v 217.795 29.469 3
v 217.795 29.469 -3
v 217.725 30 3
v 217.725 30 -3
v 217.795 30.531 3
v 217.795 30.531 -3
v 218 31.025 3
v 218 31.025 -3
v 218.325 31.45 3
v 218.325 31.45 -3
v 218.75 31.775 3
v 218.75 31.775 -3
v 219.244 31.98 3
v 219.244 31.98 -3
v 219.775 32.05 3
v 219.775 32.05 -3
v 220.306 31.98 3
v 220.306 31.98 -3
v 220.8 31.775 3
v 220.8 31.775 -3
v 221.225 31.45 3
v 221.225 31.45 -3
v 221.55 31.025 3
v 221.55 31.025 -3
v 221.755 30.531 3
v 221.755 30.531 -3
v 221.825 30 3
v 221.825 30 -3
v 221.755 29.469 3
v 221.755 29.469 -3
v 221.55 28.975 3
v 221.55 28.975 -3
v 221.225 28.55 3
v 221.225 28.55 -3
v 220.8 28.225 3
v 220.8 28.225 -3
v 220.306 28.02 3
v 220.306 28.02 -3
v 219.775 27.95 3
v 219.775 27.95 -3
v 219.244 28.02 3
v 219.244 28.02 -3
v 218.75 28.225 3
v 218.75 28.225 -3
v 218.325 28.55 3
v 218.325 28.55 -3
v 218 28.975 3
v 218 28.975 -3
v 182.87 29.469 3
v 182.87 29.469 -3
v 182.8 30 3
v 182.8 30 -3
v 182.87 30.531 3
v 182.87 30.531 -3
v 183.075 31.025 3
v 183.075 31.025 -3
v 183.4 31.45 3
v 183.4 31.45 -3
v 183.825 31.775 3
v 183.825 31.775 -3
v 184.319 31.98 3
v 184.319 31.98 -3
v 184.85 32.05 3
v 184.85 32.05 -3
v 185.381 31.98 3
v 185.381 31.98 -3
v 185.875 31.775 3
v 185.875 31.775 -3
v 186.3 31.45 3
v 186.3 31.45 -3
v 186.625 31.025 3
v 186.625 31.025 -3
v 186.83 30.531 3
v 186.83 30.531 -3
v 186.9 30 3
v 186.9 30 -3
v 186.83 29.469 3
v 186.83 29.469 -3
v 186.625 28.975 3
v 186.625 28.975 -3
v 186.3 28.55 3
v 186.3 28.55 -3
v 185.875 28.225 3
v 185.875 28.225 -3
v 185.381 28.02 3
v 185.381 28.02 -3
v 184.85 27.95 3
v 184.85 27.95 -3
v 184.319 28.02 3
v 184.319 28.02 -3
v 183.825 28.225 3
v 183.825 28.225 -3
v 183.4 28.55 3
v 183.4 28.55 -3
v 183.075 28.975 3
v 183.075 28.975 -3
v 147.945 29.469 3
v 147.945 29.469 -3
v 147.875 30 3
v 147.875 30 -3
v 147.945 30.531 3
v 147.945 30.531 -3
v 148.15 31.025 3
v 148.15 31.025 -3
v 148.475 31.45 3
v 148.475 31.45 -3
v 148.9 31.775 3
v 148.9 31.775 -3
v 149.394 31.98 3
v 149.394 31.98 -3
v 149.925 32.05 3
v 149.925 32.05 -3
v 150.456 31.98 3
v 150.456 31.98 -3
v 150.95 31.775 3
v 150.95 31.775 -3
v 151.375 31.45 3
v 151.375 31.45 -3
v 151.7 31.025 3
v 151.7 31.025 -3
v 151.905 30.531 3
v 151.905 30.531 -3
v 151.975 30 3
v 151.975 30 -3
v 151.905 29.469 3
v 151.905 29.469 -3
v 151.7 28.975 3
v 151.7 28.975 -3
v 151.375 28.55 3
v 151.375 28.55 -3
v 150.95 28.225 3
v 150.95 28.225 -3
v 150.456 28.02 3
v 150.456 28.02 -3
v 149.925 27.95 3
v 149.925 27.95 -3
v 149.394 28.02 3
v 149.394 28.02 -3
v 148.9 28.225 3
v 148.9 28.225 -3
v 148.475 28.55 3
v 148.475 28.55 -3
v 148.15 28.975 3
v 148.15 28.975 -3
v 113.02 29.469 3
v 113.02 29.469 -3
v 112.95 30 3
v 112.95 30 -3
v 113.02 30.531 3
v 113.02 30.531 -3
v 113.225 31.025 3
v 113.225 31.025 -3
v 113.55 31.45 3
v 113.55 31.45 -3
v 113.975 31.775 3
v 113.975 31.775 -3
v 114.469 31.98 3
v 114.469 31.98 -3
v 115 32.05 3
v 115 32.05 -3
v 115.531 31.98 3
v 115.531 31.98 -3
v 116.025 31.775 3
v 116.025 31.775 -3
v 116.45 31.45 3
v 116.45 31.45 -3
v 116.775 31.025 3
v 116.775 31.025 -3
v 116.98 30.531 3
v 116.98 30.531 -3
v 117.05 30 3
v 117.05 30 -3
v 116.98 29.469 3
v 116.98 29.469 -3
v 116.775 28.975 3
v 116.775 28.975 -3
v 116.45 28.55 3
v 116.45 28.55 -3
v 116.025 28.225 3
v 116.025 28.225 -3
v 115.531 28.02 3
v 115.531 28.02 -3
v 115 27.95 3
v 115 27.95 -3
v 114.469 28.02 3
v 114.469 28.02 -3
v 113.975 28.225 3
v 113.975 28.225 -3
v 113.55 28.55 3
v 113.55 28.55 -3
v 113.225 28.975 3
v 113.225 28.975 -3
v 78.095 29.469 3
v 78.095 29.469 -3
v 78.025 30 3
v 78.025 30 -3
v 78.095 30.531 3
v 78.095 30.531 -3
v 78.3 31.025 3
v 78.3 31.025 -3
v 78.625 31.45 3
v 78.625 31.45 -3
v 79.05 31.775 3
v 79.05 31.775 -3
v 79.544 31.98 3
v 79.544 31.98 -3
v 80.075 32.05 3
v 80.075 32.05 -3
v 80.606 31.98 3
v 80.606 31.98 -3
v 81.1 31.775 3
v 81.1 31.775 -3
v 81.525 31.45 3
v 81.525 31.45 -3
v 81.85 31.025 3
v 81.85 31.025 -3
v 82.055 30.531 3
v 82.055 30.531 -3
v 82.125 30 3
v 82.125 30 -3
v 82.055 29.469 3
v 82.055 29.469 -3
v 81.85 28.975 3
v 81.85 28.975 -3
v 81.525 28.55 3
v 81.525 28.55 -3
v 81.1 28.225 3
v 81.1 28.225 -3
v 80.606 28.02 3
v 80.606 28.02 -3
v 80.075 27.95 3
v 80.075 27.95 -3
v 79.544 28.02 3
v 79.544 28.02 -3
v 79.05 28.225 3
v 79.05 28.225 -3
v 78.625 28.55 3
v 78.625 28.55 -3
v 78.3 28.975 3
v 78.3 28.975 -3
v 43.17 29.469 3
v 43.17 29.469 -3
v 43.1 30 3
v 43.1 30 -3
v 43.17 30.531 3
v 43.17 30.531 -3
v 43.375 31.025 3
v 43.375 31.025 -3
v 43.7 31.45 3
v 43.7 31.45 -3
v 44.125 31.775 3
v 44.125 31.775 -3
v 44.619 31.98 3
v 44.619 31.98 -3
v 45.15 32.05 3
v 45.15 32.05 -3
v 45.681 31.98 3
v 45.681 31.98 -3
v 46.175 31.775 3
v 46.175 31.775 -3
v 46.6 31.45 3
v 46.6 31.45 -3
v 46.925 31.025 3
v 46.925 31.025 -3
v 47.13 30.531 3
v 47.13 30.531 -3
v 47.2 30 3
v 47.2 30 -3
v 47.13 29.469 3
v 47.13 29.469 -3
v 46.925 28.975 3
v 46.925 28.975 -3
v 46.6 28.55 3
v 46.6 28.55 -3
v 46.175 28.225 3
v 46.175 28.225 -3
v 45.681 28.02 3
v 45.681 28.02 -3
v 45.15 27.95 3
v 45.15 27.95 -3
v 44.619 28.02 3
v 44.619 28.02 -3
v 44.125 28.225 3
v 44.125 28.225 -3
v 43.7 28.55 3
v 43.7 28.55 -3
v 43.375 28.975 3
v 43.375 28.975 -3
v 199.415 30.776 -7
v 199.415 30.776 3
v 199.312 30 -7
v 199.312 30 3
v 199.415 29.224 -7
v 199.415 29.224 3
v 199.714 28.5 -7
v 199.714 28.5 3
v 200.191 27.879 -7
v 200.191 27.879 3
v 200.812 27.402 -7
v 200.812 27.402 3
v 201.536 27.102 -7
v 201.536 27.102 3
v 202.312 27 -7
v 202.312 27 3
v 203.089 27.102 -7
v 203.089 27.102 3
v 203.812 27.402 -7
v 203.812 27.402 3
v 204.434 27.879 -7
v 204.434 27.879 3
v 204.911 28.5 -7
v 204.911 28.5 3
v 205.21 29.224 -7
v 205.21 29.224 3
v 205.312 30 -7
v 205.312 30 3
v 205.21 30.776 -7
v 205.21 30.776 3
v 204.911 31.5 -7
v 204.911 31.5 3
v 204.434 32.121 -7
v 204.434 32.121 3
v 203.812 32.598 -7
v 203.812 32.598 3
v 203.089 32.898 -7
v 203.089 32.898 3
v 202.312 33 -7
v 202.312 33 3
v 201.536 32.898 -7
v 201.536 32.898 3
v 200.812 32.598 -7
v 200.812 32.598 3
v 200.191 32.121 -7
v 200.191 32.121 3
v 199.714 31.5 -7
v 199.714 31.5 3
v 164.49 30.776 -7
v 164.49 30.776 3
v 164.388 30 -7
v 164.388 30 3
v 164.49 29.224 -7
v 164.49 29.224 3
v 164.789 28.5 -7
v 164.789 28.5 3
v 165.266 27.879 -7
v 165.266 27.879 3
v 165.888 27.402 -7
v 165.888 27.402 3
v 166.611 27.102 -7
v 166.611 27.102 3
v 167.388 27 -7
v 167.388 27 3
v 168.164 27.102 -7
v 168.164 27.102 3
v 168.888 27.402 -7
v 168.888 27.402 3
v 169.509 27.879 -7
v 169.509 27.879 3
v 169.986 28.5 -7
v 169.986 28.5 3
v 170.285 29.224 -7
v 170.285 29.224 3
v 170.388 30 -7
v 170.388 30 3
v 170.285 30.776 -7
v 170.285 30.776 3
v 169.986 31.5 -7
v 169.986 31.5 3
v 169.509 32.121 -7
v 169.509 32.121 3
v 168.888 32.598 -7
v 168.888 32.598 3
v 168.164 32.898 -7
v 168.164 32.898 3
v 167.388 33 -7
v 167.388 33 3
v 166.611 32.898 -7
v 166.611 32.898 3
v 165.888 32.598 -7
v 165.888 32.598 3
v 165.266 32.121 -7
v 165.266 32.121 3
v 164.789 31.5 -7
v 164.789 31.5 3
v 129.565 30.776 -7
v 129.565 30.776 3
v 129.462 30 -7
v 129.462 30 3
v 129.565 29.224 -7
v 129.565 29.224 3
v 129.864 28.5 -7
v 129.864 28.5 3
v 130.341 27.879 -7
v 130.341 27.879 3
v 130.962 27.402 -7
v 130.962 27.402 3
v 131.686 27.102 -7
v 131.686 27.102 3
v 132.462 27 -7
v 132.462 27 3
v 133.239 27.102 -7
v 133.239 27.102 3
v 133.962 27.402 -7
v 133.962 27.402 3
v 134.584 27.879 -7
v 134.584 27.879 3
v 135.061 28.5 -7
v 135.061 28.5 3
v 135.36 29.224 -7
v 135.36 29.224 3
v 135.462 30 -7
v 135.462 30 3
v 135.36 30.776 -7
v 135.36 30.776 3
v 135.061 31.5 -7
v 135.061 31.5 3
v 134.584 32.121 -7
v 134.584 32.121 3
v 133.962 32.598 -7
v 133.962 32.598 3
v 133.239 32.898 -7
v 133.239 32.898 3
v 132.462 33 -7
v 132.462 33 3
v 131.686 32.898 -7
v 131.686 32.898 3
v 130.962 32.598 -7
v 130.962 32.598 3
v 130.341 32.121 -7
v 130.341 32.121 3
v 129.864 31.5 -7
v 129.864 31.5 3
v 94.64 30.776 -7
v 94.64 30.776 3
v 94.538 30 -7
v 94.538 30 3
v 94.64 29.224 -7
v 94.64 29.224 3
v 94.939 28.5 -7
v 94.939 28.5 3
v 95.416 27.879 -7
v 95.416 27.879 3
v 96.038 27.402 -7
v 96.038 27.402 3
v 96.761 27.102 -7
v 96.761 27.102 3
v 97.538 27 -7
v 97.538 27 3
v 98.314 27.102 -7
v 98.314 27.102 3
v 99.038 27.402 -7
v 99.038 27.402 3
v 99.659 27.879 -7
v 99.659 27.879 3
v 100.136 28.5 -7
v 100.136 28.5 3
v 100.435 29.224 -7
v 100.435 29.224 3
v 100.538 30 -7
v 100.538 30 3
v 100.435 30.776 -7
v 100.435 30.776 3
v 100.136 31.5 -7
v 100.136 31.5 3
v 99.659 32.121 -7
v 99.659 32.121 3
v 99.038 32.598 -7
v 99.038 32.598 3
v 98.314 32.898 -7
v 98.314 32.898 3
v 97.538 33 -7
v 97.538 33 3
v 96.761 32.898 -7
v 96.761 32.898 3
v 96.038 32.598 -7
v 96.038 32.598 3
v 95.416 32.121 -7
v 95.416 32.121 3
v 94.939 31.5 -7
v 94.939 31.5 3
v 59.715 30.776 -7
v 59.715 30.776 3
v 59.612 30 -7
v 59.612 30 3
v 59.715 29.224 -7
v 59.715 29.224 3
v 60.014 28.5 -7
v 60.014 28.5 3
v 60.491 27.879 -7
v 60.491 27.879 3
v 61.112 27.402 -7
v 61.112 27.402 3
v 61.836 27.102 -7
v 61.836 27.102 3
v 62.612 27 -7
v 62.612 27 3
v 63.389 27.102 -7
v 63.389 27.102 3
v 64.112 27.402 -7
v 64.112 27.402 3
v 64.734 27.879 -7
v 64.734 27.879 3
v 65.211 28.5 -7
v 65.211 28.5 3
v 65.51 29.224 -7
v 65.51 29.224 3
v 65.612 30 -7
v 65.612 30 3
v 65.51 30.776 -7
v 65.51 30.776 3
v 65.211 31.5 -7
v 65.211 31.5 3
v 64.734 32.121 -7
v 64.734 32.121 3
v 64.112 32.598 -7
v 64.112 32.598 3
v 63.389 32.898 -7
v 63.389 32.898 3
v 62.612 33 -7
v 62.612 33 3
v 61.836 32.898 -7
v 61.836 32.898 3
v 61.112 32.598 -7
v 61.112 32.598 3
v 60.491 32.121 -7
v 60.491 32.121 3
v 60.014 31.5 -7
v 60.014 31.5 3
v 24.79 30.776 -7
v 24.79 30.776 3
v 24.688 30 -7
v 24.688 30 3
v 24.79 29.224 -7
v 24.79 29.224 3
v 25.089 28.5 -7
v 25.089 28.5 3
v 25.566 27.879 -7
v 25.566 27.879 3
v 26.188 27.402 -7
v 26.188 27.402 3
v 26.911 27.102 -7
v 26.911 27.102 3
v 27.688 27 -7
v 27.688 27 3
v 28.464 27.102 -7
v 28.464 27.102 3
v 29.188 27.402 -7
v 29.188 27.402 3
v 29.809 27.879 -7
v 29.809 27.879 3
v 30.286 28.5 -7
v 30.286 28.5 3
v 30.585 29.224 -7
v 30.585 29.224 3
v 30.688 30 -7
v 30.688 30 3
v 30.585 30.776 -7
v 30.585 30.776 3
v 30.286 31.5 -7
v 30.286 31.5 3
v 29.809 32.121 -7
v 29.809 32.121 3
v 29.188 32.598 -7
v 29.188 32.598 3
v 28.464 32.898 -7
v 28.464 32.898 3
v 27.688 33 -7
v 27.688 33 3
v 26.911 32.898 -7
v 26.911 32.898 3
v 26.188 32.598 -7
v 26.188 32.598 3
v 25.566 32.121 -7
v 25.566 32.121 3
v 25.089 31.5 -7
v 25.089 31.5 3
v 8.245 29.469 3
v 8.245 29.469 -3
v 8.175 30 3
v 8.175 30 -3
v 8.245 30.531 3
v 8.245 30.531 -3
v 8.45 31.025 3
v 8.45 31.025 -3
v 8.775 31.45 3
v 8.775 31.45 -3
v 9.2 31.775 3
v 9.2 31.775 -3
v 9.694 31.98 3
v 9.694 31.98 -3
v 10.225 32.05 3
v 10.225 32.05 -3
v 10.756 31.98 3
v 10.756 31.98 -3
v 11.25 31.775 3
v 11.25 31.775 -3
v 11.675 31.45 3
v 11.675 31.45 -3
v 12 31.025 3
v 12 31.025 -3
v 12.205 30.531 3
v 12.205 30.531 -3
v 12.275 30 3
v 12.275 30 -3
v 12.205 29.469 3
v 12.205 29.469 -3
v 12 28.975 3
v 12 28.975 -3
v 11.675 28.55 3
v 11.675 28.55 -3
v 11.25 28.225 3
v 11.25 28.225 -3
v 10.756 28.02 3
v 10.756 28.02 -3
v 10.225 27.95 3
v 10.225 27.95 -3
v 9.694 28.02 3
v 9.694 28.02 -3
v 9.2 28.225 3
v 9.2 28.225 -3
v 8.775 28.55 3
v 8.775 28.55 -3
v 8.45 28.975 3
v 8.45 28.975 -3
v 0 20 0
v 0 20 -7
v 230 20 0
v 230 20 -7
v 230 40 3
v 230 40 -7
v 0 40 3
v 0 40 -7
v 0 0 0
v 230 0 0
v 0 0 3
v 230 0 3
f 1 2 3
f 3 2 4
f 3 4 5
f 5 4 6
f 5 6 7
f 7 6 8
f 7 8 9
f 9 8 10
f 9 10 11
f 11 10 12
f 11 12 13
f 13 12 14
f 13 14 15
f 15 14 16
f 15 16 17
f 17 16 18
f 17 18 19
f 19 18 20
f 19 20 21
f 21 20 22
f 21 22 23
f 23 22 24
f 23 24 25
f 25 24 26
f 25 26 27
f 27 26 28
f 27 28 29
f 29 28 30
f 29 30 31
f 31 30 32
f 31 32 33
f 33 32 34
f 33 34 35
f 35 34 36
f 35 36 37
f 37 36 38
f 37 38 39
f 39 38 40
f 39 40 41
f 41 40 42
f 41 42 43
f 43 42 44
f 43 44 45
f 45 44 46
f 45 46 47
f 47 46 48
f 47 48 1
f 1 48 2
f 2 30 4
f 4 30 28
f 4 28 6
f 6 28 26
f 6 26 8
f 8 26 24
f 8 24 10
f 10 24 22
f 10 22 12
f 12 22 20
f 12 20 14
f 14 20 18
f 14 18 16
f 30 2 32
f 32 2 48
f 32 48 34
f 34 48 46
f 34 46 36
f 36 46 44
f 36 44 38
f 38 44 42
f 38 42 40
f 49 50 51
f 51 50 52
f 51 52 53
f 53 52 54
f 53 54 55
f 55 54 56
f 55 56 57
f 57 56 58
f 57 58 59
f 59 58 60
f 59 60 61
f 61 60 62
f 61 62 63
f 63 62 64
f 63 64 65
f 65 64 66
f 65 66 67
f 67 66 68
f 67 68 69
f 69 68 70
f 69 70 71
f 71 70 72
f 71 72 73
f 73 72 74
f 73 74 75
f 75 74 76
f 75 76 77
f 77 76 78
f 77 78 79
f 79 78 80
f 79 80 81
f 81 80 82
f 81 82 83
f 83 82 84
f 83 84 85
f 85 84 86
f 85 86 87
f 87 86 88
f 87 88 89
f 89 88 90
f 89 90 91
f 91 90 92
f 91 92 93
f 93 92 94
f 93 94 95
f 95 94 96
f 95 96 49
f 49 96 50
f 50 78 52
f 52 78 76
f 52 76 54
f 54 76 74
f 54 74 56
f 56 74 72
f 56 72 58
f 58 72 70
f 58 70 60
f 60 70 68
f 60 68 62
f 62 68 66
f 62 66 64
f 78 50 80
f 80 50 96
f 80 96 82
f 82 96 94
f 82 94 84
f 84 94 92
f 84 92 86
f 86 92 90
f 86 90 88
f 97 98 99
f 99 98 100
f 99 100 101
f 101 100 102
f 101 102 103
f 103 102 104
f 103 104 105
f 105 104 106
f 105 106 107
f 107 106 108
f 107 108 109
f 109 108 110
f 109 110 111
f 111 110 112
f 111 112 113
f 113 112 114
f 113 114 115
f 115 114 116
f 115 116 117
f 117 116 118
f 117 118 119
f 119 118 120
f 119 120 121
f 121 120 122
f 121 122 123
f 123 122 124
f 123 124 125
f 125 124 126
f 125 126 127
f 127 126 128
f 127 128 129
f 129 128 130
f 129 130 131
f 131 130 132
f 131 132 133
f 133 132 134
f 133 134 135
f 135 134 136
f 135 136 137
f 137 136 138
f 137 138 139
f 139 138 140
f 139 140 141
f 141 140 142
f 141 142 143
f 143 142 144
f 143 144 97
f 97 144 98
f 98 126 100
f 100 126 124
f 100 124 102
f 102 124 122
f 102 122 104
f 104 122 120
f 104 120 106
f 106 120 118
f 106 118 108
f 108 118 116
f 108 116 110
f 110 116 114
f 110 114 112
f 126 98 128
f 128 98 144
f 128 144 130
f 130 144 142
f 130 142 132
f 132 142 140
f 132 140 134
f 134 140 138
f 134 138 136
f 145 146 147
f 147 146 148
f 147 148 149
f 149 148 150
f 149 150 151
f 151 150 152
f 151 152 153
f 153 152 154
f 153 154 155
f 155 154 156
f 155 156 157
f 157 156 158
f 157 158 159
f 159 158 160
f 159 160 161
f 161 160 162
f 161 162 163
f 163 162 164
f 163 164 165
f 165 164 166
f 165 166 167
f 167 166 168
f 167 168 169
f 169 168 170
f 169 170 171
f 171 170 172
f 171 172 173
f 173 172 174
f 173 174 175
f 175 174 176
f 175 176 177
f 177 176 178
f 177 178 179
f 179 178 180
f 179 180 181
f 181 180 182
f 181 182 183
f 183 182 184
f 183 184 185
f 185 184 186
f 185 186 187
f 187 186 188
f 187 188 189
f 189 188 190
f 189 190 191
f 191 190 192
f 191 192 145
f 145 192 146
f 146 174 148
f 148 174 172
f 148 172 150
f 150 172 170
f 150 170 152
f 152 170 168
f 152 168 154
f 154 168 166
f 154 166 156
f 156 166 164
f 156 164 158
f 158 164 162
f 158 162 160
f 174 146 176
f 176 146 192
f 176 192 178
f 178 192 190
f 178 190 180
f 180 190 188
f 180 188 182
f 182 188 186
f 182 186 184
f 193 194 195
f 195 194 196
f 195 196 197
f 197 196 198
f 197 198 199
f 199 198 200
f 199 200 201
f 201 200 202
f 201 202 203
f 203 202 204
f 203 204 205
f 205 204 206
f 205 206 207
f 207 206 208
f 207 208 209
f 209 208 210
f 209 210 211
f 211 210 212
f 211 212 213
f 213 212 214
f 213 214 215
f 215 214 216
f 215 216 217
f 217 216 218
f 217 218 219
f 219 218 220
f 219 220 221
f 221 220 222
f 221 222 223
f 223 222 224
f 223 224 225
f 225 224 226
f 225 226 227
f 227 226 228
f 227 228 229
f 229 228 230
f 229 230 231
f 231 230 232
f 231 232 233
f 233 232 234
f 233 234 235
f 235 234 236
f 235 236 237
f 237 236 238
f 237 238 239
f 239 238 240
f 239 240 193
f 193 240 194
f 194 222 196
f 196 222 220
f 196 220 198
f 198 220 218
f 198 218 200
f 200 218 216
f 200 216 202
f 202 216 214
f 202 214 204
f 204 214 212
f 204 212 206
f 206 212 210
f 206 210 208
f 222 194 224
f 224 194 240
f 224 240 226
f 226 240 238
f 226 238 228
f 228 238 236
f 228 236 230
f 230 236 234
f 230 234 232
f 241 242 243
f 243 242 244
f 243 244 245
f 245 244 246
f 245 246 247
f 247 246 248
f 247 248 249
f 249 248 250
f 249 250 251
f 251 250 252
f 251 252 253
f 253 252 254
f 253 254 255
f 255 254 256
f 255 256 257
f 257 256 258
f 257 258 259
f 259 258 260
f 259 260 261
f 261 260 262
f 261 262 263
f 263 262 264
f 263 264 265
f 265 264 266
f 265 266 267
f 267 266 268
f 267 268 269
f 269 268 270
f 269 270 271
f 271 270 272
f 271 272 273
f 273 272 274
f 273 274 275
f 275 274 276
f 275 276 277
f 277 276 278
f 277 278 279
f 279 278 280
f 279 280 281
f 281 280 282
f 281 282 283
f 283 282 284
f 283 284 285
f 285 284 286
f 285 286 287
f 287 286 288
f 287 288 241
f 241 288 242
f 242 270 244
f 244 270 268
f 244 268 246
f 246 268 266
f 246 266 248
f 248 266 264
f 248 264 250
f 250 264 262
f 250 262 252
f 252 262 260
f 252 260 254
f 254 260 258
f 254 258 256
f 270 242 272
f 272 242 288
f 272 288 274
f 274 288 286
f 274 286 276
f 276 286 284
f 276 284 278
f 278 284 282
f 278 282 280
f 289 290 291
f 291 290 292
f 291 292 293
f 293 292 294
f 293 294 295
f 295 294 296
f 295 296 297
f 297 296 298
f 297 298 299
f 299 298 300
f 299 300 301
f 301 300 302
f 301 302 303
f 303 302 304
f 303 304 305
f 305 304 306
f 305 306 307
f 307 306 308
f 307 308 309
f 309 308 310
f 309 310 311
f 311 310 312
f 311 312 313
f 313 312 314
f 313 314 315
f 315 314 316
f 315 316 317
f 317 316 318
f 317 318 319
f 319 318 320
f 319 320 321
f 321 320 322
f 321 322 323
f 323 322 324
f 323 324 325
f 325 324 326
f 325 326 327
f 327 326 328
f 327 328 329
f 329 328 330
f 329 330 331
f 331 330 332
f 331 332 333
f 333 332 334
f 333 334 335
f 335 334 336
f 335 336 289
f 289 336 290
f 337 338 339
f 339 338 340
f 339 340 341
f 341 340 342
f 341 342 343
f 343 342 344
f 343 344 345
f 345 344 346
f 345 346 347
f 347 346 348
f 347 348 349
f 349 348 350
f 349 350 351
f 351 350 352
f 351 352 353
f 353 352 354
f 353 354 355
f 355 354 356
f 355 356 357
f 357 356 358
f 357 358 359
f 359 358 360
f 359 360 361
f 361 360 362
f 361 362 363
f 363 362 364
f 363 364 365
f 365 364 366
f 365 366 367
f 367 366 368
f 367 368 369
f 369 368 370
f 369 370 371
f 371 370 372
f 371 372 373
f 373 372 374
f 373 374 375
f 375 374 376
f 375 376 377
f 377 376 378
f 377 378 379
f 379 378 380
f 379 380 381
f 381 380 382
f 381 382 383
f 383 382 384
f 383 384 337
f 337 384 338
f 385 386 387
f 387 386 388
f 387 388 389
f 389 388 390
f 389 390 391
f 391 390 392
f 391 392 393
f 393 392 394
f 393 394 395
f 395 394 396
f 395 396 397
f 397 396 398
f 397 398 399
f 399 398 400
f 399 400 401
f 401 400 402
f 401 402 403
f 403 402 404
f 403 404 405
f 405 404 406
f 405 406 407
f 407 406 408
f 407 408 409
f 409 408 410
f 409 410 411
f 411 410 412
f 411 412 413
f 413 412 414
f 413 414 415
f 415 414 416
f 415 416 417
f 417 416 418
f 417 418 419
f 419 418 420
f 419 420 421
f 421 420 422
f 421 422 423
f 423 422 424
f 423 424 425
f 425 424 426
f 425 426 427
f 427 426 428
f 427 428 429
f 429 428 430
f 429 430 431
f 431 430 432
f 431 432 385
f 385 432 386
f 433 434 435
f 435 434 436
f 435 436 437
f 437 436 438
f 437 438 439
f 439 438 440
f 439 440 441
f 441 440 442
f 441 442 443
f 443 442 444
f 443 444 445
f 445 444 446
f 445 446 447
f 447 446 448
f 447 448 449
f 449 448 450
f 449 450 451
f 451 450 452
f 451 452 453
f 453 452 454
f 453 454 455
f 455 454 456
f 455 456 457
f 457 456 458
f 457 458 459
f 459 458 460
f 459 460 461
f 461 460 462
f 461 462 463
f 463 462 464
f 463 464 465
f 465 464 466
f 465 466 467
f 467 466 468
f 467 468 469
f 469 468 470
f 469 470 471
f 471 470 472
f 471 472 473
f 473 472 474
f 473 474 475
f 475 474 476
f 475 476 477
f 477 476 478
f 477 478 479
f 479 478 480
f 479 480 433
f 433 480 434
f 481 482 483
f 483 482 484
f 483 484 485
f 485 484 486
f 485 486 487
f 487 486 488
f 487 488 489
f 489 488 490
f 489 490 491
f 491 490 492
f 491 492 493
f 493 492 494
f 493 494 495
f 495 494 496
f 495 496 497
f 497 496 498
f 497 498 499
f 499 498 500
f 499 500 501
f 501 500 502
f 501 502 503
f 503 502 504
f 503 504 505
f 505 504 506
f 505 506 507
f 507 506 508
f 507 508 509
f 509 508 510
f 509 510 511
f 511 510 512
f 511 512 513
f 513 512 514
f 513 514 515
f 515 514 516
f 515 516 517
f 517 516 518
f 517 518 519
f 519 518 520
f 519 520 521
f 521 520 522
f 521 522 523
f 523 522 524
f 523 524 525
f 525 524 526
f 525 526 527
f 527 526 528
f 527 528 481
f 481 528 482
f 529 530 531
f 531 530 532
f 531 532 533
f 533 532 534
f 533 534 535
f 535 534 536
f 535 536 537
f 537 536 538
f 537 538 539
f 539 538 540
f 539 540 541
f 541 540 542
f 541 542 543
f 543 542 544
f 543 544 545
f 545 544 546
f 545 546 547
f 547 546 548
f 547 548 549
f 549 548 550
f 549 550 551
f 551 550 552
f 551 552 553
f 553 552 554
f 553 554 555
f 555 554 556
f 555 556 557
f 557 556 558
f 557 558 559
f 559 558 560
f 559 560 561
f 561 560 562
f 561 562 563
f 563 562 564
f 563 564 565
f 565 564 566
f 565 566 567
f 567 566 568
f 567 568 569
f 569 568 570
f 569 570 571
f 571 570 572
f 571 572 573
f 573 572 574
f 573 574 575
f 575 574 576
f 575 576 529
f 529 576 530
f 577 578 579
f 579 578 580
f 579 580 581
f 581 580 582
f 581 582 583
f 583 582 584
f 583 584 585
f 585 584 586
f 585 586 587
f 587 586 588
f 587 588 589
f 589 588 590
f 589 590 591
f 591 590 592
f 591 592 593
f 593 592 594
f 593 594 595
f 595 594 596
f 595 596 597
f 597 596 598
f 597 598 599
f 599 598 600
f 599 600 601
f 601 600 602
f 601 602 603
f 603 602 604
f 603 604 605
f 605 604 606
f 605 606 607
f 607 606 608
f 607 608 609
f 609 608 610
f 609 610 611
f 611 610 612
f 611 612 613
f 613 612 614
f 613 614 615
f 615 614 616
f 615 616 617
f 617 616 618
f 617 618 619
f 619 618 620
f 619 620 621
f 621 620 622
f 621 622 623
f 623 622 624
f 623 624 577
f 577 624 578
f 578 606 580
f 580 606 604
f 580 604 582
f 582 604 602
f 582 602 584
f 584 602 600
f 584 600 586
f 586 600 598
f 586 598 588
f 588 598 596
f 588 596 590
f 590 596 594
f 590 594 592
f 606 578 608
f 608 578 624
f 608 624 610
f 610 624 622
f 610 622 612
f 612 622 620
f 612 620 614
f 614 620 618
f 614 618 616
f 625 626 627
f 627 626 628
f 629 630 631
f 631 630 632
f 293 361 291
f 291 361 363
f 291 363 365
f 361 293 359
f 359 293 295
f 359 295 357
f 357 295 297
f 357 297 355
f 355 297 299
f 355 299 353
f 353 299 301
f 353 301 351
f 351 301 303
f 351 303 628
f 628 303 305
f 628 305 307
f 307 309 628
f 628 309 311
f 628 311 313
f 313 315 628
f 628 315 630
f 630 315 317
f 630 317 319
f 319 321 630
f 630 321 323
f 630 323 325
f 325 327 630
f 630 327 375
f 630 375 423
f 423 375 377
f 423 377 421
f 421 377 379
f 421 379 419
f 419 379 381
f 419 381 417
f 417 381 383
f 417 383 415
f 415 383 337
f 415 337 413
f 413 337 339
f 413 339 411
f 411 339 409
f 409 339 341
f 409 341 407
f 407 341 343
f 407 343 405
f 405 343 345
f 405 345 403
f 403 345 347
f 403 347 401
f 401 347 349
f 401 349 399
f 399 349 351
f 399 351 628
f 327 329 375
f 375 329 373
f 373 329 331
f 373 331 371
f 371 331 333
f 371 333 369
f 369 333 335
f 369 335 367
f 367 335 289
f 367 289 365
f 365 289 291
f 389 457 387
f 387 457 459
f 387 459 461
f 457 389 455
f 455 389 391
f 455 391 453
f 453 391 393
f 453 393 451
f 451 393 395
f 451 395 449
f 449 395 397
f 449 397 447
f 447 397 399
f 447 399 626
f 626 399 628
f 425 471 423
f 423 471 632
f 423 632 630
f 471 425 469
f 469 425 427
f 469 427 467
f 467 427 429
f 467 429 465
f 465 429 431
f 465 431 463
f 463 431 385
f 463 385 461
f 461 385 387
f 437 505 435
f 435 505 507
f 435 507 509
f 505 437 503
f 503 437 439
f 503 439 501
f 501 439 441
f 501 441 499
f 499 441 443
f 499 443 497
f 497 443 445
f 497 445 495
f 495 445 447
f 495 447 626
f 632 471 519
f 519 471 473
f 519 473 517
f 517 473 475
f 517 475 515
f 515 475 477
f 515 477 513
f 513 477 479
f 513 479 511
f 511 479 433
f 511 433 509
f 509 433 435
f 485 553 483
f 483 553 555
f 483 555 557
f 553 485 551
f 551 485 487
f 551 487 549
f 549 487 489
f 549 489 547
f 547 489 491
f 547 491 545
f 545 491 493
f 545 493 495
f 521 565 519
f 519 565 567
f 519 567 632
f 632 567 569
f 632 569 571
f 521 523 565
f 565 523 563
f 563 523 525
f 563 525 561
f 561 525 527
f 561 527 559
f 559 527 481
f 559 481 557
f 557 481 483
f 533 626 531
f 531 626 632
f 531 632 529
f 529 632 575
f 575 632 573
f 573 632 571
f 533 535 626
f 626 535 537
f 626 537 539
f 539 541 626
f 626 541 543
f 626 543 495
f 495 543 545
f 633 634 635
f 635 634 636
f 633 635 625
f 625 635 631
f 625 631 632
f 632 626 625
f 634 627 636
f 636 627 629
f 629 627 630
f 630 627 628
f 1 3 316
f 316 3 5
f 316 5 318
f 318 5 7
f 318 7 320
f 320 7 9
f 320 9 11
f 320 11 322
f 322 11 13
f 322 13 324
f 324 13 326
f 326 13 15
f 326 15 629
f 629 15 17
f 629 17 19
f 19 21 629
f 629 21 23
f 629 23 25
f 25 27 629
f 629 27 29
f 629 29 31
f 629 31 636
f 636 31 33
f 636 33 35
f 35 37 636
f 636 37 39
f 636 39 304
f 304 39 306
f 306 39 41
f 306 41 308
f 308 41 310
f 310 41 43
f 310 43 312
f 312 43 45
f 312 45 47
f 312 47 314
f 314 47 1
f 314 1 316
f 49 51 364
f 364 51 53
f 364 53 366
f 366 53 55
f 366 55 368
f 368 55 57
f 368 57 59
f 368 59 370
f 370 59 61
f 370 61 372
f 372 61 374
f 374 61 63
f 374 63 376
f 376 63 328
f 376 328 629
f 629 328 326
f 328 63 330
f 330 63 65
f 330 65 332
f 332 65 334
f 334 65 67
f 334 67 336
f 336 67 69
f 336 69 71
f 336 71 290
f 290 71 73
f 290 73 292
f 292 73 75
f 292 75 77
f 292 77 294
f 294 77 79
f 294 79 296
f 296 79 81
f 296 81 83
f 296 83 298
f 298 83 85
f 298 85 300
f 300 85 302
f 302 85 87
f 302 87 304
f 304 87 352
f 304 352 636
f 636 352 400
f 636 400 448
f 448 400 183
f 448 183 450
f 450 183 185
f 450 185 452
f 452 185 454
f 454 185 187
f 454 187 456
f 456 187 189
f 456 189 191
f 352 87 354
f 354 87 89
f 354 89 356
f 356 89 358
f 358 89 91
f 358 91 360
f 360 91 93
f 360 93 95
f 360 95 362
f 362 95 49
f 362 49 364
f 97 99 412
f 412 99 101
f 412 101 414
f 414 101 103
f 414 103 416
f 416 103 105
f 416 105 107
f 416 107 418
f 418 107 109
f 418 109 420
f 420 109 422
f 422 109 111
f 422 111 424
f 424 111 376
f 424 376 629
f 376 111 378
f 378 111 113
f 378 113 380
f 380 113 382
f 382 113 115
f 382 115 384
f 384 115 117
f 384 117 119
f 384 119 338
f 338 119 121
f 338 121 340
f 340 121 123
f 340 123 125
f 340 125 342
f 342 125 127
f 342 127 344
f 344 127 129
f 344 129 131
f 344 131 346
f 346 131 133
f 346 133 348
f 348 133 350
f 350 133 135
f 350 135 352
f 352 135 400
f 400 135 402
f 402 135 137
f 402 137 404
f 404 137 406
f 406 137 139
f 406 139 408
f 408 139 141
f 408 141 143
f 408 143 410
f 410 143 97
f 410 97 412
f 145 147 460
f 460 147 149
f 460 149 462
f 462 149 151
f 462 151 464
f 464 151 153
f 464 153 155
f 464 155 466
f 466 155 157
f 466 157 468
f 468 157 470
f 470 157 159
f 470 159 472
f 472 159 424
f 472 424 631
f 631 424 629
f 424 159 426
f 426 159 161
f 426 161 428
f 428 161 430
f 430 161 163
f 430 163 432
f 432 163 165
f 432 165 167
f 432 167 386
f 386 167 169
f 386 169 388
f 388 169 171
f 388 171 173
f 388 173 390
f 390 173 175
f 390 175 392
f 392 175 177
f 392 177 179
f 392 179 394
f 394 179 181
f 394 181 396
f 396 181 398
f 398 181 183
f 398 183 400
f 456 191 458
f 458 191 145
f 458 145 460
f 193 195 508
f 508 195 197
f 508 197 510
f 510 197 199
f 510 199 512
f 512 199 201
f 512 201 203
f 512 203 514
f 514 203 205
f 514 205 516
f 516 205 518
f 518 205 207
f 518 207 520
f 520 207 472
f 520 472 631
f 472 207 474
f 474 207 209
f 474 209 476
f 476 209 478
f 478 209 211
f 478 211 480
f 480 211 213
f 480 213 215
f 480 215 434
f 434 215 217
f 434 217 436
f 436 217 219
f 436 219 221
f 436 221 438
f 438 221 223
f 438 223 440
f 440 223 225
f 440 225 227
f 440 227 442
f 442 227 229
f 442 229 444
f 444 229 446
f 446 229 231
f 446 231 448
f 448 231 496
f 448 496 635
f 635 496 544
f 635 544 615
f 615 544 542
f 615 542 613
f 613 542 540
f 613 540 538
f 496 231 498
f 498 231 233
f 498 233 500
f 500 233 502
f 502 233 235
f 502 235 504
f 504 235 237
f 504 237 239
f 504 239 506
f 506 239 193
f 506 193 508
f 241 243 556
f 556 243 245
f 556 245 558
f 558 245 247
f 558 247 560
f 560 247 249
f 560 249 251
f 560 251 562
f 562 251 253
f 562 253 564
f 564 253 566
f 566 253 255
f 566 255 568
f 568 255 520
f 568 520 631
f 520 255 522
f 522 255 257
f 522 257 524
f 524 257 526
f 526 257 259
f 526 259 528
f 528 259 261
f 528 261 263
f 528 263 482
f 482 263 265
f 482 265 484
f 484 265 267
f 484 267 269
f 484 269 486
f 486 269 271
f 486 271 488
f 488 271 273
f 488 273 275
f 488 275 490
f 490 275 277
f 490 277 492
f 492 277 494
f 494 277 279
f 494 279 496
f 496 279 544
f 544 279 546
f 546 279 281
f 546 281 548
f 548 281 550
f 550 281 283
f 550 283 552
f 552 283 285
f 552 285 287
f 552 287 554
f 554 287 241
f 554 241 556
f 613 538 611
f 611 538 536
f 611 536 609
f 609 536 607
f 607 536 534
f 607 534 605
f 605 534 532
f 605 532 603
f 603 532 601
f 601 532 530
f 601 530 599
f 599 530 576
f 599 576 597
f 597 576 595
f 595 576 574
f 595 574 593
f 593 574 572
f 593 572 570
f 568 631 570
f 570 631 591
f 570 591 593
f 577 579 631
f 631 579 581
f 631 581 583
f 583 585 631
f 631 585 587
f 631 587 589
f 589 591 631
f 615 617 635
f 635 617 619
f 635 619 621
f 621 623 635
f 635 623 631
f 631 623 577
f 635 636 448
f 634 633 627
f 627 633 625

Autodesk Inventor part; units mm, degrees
ref_plane "YZ Plane" through (0, 0, 0) normal (1, 0, 0) x (0, 1, 0)
ref_plane "XZ Plane" through (0, 0, 0) normal (0, 1, 0) x (-1, 0, 0)
ref_plane "XY Plane" through (0, 0, 0) normal (0, 0, 1) x (1, 0, 0)
sketch "Sketch1" plane through (0, 0, 0) normal (0, 0, 1) x (1, 0, 0)
  line L0 (0, 0) -> (230, 0)
  line L1 (230, 0) -> (230, 20)
  line L2 (230, 20) -> (0, 20)
  line L3 (0, 20) -> (0, 0)
  dimension "d0" = 230
  dimension "d1" = 20
extrude "Extrusion1" add sketch "Sketch1" along normal blind 3
sketch "Sketch2" plane through (0, 0, 3) normal (0, 0, -1) x (-1, 0, 0)
  line L0 (0, 0) -> (-230, 0) projected
  line L1 (-12.5251, -24.7625) -> (-37.9251, -24.7625) projected
  line L2 (-230, 20) -> (0, 20) projected
  point P0 (-10.225, 30)
  dimension "d62" = 10
  dimension "d73" = 10.225
sketch "Sketch5" plane through (0, 0, 0) normal (-1, 0, 0) x (0, 0, 1)
  line L0 (0, 20) -> (3, 20) projected
  line L1 (3, 20) -> (-7, 20)
  line L2 (-7, 20) -> (-7, 40)
  line L3 (-7, 40) -> (3, 40)
  line L4 (3, 40) -> (3, 20)
  point P0 (0, 0)
  point P1 (3, 30)
  point P2 (1.5, 20)
  point P3 (0, 20)
  dimension "d31" = 10
  dimension "d32" = 20
extrude "Extrusion3" add sketch "Sketch5" against normal up to surface (230 mm away)
hole "Hole3" at (10.225, 30, 3) direction (0, 0, -1) diameter 4.1 depth 6
sketch "Sketch6" plane through (0, 0, 3) normal (0, 0, 1) x (1, 0, 0)
  line L0 (0, 0) -> (0, 40) projected
  line L1 (230, 0) -> (230, 40) projected
  line L2 (0, 40) -> (230, 40) projected
  point P0 (27.6875, 30)
  dimension "d35" = 27.6875
  dimension "d51" = 10
hole "Hole2" at (27.6875, 30, 3) direction (0, 0, -1) diameter 6 end through all
pattern_linear "Rectangular Pattern2" count 6 spacing 34.925 along (1, 0, 0) of "Hole2"
pattern_linear "Rectangular Pattern3" count 7 spacing 34.925 along (1, 0, 0) of "Hole3"
sketch "Sketch7" plane through (0, 0, 0) normal (-1, 0, 0) x (0, 0, 1)
  line L0 (0, 0) -> (3, 0) projected
  line L1 (0, 0) -> (3.6796, 0)
  line L2 (3.6796, 0) -> (3.6796, 5)
  line L3 (3.6796, 5) -> (0, 5)
  line L4 (0, 5) -> (0, 0)
  dimension "d66" = 5
properties part number "IR_Mount_Plate_3DPrint"
